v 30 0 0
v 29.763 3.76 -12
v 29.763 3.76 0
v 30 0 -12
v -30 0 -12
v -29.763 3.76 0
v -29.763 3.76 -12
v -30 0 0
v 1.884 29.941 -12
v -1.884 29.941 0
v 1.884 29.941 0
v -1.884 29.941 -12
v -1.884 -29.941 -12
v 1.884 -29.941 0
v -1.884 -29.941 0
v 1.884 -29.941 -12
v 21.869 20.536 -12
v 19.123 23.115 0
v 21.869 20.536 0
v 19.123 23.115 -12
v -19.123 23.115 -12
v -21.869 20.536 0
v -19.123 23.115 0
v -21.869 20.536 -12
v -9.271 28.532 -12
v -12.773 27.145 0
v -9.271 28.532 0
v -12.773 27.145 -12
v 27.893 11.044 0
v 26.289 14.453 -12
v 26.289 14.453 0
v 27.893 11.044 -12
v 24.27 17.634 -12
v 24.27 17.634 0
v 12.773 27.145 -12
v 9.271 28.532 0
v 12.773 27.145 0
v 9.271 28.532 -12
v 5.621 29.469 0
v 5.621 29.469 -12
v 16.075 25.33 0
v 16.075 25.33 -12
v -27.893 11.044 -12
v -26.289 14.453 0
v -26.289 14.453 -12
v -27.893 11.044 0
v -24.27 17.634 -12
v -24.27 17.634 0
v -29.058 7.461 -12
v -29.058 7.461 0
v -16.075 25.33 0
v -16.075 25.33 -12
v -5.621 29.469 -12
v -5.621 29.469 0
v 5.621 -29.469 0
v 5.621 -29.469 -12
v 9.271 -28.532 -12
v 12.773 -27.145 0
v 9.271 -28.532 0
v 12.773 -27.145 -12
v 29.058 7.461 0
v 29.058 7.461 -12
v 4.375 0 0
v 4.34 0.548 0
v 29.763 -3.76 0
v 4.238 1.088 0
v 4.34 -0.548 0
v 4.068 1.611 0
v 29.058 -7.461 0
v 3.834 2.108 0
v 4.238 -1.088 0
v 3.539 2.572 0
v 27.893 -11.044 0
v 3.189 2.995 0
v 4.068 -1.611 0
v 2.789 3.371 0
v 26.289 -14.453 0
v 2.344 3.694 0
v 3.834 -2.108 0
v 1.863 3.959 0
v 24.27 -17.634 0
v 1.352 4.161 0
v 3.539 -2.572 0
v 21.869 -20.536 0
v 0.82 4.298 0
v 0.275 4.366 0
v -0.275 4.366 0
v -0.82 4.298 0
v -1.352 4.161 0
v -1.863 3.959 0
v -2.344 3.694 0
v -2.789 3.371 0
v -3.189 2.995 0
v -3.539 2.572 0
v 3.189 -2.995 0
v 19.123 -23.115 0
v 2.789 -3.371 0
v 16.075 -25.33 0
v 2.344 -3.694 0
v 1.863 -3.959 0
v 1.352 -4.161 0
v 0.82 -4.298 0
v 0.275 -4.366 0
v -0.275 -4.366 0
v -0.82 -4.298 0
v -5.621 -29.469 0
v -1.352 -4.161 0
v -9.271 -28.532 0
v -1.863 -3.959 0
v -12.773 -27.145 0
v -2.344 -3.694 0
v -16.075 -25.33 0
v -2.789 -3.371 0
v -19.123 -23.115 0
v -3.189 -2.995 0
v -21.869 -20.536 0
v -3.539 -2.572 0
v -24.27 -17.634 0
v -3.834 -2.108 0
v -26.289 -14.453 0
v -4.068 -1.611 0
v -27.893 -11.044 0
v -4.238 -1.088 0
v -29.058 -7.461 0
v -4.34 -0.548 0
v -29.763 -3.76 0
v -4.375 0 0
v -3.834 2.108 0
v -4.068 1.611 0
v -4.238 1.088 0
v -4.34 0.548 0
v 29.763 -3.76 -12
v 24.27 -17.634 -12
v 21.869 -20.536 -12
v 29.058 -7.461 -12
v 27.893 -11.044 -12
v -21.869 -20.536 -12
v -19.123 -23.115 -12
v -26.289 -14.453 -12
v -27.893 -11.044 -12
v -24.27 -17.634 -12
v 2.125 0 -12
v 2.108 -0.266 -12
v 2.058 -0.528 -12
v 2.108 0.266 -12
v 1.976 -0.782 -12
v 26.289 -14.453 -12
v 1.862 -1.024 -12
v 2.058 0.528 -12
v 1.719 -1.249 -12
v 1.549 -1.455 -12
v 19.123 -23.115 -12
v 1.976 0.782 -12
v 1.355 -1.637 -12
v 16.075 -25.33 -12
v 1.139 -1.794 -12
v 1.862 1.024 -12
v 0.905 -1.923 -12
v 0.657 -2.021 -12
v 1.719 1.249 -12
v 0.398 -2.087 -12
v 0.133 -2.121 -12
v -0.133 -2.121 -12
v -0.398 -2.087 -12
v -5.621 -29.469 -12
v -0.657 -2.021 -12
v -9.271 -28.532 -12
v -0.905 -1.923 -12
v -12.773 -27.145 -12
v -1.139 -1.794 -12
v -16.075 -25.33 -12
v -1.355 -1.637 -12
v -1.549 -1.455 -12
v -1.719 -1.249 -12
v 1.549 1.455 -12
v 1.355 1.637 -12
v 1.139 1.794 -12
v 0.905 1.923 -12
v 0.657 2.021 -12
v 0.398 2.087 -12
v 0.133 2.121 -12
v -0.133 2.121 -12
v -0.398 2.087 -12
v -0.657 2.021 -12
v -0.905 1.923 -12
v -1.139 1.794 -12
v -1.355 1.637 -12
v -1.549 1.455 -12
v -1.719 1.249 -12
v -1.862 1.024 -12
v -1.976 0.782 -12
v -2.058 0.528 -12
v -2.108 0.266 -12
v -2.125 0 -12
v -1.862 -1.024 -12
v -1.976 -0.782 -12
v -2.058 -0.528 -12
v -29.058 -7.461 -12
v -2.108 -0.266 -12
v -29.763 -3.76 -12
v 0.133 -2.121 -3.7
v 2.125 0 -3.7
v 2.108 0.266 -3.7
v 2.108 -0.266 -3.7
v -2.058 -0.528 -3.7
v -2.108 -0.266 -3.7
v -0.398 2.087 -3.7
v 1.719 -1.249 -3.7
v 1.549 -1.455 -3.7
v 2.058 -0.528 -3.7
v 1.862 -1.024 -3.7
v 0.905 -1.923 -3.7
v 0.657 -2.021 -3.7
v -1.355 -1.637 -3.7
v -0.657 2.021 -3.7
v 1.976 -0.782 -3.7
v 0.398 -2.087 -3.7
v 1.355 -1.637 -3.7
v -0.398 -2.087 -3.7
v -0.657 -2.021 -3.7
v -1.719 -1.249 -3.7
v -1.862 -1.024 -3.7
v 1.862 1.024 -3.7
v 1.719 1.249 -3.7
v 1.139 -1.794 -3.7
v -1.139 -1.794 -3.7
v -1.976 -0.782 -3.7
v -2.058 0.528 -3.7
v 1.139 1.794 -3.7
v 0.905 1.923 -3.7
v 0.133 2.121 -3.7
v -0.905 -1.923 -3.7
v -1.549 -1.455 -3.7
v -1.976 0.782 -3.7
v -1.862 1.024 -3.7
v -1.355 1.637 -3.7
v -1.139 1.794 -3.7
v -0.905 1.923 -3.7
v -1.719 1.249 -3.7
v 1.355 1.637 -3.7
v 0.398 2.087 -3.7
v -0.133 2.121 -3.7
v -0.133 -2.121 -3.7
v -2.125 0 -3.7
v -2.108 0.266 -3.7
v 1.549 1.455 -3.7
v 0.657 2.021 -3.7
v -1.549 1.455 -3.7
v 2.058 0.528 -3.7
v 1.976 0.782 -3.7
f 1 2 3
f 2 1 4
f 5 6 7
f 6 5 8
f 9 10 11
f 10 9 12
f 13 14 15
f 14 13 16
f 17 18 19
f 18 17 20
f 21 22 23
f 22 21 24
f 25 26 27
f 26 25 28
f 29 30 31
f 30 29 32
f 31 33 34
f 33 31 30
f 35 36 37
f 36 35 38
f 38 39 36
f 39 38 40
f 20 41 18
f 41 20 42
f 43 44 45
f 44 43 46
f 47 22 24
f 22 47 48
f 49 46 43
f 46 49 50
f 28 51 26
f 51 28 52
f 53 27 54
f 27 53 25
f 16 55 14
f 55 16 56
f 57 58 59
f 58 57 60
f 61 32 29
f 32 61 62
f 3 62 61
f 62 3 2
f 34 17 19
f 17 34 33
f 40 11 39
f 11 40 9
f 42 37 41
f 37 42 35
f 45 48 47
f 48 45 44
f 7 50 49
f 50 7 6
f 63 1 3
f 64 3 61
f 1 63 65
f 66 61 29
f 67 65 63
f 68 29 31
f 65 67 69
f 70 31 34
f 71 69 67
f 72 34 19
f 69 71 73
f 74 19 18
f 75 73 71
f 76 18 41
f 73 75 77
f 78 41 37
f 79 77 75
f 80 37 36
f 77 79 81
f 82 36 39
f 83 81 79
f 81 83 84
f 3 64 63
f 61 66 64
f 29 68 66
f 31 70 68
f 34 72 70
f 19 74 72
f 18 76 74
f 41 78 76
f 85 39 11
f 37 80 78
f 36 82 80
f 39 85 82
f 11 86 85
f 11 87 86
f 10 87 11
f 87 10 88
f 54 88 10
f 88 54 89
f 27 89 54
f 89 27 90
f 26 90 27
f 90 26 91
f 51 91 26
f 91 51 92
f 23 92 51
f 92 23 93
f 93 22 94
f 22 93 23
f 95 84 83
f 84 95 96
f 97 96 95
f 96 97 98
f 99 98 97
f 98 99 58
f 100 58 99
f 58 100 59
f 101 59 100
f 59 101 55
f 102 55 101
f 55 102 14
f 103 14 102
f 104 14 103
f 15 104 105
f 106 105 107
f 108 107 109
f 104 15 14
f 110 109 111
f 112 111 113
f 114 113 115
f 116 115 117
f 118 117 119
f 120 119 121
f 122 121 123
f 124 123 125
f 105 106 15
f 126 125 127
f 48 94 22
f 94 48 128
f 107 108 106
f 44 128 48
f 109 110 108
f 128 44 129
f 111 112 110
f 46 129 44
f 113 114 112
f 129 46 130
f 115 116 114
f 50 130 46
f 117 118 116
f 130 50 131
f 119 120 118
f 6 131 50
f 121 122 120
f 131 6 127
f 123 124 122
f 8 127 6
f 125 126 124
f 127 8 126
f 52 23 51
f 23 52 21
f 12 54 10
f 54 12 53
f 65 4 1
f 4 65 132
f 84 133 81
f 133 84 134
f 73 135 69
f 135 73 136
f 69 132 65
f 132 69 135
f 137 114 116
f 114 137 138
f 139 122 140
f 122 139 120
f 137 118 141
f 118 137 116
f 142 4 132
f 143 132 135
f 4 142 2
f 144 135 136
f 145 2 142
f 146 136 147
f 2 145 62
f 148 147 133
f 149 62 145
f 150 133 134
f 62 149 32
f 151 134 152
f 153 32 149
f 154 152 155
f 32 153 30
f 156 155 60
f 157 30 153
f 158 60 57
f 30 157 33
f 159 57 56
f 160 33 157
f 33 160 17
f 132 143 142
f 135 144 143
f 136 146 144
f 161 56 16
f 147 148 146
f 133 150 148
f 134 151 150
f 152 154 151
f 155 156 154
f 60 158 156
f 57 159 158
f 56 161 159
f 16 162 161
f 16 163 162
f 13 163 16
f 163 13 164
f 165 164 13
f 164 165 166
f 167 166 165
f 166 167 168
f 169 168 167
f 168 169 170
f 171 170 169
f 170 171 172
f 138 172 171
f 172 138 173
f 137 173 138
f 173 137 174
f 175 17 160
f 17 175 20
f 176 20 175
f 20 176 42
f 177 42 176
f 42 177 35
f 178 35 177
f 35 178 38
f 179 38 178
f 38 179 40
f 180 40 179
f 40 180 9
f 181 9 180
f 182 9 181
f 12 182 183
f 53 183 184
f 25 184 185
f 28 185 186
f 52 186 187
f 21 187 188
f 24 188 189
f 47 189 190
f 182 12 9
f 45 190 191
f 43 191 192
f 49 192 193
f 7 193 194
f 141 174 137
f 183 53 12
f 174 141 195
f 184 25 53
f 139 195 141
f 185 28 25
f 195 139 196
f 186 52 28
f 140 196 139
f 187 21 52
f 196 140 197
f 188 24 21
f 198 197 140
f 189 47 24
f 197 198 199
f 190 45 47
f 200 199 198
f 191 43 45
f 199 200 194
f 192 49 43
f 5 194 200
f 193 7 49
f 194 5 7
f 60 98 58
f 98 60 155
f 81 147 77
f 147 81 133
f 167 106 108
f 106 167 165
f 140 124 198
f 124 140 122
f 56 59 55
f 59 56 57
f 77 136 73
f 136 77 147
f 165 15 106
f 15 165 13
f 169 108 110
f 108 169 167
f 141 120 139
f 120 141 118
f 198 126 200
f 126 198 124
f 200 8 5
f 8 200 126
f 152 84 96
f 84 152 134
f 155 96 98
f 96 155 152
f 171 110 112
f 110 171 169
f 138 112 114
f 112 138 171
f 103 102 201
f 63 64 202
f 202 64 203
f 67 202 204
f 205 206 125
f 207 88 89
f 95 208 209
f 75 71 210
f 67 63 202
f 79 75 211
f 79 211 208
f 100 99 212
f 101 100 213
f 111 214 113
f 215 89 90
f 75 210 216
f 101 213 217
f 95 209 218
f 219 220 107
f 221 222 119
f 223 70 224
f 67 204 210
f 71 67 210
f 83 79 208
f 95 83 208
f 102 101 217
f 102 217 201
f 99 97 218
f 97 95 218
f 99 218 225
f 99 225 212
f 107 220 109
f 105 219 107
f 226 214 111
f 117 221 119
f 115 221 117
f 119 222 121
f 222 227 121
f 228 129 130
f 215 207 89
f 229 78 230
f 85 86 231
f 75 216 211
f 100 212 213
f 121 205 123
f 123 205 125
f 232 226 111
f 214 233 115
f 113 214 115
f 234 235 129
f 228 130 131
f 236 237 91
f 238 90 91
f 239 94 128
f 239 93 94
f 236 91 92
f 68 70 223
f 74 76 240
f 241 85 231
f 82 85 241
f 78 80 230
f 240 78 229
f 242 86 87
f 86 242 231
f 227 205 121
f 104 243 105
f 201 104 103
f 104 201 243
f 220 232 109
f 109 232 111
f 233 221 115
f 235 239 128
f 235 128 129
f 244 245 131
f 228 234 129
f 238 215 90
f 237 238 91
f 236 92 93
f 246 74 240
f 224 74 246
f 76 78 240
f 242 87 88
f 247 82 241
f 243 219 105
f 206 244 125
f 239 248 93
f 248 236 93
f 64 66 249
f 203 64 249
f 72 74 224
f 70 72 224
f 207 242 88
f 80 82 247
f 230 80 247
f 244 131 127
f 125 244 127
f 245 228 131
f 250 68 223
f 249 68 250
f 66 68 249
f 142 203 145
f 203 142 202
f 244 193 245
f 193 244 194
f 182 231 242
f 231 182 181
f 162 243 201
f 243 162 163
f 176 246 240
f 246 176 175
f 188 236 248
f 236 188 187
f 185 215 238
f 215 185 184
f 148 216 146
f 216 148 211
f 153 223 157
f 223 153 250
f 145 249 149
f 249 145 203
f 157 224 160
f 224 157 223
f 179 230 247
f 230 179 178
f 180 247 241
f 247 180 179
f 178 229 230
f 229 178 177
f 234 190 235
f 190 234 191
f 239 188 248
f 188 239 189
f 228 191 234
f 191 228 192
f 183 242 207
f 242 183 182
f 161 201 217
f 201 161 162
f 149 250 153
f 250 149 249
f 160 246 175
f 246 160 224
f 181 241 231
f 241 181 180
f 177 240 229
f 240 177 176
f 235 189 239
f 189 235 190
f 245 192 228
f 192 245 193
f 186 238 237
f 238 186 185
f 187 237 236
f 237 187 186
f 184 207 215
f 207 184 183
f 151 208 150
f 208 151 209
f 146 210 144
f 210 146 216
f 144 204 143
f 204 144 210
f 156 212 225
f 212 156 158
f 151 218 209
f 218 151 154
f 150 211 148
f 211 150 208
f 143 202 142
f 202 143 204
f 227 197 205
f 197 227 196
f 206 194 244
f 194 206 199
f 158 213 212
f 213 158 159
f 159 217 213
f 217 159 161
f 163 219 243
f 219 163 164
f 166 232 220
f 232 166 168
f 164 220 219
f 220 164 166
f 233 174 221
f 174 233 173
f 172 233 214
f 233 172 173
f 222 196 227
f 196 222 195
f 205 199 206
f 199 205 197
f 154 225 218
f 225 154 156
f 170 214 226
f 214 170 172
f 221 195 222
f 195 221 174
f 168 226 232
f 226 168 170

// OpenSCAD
$fn = 50;


difference() {
	union() {
		translate(v = [0, 0, -12.0000000000]) {
			cylinder(h = 12, r = 30.0000000000);
		}
		translate(v = [0, 0, -12.0000000000]) {
			cylinder(h = 12, r = 2.8750000000);
		}
	}
	union() {
		translate(v = [0, 0, 0]) {
			rotate(a = [0, 0, 0]) {
				difference() {
					union() {
						translate(v = [0, 0, -12.0000000000]) {
							cylinder(h = 12, r = 2.0000000000);
						}
						translate(v = [0, 0, -3.7000000000]) {
							cylinder(h = 3.7000000000, r1 = 2.1250000000, r2 = 4.3750000000);
						}
						translate(v = [0, 0, -12.0000000000]) {
							cylinder(h = 12, r = 2.1250000000);
						}
						translate(v = [0, 0, -12.0000000000]) {
							cylinder(h = 12, r = 2.0000000000);
						}
					}
					union();
				}
			}
		}
	}
}
